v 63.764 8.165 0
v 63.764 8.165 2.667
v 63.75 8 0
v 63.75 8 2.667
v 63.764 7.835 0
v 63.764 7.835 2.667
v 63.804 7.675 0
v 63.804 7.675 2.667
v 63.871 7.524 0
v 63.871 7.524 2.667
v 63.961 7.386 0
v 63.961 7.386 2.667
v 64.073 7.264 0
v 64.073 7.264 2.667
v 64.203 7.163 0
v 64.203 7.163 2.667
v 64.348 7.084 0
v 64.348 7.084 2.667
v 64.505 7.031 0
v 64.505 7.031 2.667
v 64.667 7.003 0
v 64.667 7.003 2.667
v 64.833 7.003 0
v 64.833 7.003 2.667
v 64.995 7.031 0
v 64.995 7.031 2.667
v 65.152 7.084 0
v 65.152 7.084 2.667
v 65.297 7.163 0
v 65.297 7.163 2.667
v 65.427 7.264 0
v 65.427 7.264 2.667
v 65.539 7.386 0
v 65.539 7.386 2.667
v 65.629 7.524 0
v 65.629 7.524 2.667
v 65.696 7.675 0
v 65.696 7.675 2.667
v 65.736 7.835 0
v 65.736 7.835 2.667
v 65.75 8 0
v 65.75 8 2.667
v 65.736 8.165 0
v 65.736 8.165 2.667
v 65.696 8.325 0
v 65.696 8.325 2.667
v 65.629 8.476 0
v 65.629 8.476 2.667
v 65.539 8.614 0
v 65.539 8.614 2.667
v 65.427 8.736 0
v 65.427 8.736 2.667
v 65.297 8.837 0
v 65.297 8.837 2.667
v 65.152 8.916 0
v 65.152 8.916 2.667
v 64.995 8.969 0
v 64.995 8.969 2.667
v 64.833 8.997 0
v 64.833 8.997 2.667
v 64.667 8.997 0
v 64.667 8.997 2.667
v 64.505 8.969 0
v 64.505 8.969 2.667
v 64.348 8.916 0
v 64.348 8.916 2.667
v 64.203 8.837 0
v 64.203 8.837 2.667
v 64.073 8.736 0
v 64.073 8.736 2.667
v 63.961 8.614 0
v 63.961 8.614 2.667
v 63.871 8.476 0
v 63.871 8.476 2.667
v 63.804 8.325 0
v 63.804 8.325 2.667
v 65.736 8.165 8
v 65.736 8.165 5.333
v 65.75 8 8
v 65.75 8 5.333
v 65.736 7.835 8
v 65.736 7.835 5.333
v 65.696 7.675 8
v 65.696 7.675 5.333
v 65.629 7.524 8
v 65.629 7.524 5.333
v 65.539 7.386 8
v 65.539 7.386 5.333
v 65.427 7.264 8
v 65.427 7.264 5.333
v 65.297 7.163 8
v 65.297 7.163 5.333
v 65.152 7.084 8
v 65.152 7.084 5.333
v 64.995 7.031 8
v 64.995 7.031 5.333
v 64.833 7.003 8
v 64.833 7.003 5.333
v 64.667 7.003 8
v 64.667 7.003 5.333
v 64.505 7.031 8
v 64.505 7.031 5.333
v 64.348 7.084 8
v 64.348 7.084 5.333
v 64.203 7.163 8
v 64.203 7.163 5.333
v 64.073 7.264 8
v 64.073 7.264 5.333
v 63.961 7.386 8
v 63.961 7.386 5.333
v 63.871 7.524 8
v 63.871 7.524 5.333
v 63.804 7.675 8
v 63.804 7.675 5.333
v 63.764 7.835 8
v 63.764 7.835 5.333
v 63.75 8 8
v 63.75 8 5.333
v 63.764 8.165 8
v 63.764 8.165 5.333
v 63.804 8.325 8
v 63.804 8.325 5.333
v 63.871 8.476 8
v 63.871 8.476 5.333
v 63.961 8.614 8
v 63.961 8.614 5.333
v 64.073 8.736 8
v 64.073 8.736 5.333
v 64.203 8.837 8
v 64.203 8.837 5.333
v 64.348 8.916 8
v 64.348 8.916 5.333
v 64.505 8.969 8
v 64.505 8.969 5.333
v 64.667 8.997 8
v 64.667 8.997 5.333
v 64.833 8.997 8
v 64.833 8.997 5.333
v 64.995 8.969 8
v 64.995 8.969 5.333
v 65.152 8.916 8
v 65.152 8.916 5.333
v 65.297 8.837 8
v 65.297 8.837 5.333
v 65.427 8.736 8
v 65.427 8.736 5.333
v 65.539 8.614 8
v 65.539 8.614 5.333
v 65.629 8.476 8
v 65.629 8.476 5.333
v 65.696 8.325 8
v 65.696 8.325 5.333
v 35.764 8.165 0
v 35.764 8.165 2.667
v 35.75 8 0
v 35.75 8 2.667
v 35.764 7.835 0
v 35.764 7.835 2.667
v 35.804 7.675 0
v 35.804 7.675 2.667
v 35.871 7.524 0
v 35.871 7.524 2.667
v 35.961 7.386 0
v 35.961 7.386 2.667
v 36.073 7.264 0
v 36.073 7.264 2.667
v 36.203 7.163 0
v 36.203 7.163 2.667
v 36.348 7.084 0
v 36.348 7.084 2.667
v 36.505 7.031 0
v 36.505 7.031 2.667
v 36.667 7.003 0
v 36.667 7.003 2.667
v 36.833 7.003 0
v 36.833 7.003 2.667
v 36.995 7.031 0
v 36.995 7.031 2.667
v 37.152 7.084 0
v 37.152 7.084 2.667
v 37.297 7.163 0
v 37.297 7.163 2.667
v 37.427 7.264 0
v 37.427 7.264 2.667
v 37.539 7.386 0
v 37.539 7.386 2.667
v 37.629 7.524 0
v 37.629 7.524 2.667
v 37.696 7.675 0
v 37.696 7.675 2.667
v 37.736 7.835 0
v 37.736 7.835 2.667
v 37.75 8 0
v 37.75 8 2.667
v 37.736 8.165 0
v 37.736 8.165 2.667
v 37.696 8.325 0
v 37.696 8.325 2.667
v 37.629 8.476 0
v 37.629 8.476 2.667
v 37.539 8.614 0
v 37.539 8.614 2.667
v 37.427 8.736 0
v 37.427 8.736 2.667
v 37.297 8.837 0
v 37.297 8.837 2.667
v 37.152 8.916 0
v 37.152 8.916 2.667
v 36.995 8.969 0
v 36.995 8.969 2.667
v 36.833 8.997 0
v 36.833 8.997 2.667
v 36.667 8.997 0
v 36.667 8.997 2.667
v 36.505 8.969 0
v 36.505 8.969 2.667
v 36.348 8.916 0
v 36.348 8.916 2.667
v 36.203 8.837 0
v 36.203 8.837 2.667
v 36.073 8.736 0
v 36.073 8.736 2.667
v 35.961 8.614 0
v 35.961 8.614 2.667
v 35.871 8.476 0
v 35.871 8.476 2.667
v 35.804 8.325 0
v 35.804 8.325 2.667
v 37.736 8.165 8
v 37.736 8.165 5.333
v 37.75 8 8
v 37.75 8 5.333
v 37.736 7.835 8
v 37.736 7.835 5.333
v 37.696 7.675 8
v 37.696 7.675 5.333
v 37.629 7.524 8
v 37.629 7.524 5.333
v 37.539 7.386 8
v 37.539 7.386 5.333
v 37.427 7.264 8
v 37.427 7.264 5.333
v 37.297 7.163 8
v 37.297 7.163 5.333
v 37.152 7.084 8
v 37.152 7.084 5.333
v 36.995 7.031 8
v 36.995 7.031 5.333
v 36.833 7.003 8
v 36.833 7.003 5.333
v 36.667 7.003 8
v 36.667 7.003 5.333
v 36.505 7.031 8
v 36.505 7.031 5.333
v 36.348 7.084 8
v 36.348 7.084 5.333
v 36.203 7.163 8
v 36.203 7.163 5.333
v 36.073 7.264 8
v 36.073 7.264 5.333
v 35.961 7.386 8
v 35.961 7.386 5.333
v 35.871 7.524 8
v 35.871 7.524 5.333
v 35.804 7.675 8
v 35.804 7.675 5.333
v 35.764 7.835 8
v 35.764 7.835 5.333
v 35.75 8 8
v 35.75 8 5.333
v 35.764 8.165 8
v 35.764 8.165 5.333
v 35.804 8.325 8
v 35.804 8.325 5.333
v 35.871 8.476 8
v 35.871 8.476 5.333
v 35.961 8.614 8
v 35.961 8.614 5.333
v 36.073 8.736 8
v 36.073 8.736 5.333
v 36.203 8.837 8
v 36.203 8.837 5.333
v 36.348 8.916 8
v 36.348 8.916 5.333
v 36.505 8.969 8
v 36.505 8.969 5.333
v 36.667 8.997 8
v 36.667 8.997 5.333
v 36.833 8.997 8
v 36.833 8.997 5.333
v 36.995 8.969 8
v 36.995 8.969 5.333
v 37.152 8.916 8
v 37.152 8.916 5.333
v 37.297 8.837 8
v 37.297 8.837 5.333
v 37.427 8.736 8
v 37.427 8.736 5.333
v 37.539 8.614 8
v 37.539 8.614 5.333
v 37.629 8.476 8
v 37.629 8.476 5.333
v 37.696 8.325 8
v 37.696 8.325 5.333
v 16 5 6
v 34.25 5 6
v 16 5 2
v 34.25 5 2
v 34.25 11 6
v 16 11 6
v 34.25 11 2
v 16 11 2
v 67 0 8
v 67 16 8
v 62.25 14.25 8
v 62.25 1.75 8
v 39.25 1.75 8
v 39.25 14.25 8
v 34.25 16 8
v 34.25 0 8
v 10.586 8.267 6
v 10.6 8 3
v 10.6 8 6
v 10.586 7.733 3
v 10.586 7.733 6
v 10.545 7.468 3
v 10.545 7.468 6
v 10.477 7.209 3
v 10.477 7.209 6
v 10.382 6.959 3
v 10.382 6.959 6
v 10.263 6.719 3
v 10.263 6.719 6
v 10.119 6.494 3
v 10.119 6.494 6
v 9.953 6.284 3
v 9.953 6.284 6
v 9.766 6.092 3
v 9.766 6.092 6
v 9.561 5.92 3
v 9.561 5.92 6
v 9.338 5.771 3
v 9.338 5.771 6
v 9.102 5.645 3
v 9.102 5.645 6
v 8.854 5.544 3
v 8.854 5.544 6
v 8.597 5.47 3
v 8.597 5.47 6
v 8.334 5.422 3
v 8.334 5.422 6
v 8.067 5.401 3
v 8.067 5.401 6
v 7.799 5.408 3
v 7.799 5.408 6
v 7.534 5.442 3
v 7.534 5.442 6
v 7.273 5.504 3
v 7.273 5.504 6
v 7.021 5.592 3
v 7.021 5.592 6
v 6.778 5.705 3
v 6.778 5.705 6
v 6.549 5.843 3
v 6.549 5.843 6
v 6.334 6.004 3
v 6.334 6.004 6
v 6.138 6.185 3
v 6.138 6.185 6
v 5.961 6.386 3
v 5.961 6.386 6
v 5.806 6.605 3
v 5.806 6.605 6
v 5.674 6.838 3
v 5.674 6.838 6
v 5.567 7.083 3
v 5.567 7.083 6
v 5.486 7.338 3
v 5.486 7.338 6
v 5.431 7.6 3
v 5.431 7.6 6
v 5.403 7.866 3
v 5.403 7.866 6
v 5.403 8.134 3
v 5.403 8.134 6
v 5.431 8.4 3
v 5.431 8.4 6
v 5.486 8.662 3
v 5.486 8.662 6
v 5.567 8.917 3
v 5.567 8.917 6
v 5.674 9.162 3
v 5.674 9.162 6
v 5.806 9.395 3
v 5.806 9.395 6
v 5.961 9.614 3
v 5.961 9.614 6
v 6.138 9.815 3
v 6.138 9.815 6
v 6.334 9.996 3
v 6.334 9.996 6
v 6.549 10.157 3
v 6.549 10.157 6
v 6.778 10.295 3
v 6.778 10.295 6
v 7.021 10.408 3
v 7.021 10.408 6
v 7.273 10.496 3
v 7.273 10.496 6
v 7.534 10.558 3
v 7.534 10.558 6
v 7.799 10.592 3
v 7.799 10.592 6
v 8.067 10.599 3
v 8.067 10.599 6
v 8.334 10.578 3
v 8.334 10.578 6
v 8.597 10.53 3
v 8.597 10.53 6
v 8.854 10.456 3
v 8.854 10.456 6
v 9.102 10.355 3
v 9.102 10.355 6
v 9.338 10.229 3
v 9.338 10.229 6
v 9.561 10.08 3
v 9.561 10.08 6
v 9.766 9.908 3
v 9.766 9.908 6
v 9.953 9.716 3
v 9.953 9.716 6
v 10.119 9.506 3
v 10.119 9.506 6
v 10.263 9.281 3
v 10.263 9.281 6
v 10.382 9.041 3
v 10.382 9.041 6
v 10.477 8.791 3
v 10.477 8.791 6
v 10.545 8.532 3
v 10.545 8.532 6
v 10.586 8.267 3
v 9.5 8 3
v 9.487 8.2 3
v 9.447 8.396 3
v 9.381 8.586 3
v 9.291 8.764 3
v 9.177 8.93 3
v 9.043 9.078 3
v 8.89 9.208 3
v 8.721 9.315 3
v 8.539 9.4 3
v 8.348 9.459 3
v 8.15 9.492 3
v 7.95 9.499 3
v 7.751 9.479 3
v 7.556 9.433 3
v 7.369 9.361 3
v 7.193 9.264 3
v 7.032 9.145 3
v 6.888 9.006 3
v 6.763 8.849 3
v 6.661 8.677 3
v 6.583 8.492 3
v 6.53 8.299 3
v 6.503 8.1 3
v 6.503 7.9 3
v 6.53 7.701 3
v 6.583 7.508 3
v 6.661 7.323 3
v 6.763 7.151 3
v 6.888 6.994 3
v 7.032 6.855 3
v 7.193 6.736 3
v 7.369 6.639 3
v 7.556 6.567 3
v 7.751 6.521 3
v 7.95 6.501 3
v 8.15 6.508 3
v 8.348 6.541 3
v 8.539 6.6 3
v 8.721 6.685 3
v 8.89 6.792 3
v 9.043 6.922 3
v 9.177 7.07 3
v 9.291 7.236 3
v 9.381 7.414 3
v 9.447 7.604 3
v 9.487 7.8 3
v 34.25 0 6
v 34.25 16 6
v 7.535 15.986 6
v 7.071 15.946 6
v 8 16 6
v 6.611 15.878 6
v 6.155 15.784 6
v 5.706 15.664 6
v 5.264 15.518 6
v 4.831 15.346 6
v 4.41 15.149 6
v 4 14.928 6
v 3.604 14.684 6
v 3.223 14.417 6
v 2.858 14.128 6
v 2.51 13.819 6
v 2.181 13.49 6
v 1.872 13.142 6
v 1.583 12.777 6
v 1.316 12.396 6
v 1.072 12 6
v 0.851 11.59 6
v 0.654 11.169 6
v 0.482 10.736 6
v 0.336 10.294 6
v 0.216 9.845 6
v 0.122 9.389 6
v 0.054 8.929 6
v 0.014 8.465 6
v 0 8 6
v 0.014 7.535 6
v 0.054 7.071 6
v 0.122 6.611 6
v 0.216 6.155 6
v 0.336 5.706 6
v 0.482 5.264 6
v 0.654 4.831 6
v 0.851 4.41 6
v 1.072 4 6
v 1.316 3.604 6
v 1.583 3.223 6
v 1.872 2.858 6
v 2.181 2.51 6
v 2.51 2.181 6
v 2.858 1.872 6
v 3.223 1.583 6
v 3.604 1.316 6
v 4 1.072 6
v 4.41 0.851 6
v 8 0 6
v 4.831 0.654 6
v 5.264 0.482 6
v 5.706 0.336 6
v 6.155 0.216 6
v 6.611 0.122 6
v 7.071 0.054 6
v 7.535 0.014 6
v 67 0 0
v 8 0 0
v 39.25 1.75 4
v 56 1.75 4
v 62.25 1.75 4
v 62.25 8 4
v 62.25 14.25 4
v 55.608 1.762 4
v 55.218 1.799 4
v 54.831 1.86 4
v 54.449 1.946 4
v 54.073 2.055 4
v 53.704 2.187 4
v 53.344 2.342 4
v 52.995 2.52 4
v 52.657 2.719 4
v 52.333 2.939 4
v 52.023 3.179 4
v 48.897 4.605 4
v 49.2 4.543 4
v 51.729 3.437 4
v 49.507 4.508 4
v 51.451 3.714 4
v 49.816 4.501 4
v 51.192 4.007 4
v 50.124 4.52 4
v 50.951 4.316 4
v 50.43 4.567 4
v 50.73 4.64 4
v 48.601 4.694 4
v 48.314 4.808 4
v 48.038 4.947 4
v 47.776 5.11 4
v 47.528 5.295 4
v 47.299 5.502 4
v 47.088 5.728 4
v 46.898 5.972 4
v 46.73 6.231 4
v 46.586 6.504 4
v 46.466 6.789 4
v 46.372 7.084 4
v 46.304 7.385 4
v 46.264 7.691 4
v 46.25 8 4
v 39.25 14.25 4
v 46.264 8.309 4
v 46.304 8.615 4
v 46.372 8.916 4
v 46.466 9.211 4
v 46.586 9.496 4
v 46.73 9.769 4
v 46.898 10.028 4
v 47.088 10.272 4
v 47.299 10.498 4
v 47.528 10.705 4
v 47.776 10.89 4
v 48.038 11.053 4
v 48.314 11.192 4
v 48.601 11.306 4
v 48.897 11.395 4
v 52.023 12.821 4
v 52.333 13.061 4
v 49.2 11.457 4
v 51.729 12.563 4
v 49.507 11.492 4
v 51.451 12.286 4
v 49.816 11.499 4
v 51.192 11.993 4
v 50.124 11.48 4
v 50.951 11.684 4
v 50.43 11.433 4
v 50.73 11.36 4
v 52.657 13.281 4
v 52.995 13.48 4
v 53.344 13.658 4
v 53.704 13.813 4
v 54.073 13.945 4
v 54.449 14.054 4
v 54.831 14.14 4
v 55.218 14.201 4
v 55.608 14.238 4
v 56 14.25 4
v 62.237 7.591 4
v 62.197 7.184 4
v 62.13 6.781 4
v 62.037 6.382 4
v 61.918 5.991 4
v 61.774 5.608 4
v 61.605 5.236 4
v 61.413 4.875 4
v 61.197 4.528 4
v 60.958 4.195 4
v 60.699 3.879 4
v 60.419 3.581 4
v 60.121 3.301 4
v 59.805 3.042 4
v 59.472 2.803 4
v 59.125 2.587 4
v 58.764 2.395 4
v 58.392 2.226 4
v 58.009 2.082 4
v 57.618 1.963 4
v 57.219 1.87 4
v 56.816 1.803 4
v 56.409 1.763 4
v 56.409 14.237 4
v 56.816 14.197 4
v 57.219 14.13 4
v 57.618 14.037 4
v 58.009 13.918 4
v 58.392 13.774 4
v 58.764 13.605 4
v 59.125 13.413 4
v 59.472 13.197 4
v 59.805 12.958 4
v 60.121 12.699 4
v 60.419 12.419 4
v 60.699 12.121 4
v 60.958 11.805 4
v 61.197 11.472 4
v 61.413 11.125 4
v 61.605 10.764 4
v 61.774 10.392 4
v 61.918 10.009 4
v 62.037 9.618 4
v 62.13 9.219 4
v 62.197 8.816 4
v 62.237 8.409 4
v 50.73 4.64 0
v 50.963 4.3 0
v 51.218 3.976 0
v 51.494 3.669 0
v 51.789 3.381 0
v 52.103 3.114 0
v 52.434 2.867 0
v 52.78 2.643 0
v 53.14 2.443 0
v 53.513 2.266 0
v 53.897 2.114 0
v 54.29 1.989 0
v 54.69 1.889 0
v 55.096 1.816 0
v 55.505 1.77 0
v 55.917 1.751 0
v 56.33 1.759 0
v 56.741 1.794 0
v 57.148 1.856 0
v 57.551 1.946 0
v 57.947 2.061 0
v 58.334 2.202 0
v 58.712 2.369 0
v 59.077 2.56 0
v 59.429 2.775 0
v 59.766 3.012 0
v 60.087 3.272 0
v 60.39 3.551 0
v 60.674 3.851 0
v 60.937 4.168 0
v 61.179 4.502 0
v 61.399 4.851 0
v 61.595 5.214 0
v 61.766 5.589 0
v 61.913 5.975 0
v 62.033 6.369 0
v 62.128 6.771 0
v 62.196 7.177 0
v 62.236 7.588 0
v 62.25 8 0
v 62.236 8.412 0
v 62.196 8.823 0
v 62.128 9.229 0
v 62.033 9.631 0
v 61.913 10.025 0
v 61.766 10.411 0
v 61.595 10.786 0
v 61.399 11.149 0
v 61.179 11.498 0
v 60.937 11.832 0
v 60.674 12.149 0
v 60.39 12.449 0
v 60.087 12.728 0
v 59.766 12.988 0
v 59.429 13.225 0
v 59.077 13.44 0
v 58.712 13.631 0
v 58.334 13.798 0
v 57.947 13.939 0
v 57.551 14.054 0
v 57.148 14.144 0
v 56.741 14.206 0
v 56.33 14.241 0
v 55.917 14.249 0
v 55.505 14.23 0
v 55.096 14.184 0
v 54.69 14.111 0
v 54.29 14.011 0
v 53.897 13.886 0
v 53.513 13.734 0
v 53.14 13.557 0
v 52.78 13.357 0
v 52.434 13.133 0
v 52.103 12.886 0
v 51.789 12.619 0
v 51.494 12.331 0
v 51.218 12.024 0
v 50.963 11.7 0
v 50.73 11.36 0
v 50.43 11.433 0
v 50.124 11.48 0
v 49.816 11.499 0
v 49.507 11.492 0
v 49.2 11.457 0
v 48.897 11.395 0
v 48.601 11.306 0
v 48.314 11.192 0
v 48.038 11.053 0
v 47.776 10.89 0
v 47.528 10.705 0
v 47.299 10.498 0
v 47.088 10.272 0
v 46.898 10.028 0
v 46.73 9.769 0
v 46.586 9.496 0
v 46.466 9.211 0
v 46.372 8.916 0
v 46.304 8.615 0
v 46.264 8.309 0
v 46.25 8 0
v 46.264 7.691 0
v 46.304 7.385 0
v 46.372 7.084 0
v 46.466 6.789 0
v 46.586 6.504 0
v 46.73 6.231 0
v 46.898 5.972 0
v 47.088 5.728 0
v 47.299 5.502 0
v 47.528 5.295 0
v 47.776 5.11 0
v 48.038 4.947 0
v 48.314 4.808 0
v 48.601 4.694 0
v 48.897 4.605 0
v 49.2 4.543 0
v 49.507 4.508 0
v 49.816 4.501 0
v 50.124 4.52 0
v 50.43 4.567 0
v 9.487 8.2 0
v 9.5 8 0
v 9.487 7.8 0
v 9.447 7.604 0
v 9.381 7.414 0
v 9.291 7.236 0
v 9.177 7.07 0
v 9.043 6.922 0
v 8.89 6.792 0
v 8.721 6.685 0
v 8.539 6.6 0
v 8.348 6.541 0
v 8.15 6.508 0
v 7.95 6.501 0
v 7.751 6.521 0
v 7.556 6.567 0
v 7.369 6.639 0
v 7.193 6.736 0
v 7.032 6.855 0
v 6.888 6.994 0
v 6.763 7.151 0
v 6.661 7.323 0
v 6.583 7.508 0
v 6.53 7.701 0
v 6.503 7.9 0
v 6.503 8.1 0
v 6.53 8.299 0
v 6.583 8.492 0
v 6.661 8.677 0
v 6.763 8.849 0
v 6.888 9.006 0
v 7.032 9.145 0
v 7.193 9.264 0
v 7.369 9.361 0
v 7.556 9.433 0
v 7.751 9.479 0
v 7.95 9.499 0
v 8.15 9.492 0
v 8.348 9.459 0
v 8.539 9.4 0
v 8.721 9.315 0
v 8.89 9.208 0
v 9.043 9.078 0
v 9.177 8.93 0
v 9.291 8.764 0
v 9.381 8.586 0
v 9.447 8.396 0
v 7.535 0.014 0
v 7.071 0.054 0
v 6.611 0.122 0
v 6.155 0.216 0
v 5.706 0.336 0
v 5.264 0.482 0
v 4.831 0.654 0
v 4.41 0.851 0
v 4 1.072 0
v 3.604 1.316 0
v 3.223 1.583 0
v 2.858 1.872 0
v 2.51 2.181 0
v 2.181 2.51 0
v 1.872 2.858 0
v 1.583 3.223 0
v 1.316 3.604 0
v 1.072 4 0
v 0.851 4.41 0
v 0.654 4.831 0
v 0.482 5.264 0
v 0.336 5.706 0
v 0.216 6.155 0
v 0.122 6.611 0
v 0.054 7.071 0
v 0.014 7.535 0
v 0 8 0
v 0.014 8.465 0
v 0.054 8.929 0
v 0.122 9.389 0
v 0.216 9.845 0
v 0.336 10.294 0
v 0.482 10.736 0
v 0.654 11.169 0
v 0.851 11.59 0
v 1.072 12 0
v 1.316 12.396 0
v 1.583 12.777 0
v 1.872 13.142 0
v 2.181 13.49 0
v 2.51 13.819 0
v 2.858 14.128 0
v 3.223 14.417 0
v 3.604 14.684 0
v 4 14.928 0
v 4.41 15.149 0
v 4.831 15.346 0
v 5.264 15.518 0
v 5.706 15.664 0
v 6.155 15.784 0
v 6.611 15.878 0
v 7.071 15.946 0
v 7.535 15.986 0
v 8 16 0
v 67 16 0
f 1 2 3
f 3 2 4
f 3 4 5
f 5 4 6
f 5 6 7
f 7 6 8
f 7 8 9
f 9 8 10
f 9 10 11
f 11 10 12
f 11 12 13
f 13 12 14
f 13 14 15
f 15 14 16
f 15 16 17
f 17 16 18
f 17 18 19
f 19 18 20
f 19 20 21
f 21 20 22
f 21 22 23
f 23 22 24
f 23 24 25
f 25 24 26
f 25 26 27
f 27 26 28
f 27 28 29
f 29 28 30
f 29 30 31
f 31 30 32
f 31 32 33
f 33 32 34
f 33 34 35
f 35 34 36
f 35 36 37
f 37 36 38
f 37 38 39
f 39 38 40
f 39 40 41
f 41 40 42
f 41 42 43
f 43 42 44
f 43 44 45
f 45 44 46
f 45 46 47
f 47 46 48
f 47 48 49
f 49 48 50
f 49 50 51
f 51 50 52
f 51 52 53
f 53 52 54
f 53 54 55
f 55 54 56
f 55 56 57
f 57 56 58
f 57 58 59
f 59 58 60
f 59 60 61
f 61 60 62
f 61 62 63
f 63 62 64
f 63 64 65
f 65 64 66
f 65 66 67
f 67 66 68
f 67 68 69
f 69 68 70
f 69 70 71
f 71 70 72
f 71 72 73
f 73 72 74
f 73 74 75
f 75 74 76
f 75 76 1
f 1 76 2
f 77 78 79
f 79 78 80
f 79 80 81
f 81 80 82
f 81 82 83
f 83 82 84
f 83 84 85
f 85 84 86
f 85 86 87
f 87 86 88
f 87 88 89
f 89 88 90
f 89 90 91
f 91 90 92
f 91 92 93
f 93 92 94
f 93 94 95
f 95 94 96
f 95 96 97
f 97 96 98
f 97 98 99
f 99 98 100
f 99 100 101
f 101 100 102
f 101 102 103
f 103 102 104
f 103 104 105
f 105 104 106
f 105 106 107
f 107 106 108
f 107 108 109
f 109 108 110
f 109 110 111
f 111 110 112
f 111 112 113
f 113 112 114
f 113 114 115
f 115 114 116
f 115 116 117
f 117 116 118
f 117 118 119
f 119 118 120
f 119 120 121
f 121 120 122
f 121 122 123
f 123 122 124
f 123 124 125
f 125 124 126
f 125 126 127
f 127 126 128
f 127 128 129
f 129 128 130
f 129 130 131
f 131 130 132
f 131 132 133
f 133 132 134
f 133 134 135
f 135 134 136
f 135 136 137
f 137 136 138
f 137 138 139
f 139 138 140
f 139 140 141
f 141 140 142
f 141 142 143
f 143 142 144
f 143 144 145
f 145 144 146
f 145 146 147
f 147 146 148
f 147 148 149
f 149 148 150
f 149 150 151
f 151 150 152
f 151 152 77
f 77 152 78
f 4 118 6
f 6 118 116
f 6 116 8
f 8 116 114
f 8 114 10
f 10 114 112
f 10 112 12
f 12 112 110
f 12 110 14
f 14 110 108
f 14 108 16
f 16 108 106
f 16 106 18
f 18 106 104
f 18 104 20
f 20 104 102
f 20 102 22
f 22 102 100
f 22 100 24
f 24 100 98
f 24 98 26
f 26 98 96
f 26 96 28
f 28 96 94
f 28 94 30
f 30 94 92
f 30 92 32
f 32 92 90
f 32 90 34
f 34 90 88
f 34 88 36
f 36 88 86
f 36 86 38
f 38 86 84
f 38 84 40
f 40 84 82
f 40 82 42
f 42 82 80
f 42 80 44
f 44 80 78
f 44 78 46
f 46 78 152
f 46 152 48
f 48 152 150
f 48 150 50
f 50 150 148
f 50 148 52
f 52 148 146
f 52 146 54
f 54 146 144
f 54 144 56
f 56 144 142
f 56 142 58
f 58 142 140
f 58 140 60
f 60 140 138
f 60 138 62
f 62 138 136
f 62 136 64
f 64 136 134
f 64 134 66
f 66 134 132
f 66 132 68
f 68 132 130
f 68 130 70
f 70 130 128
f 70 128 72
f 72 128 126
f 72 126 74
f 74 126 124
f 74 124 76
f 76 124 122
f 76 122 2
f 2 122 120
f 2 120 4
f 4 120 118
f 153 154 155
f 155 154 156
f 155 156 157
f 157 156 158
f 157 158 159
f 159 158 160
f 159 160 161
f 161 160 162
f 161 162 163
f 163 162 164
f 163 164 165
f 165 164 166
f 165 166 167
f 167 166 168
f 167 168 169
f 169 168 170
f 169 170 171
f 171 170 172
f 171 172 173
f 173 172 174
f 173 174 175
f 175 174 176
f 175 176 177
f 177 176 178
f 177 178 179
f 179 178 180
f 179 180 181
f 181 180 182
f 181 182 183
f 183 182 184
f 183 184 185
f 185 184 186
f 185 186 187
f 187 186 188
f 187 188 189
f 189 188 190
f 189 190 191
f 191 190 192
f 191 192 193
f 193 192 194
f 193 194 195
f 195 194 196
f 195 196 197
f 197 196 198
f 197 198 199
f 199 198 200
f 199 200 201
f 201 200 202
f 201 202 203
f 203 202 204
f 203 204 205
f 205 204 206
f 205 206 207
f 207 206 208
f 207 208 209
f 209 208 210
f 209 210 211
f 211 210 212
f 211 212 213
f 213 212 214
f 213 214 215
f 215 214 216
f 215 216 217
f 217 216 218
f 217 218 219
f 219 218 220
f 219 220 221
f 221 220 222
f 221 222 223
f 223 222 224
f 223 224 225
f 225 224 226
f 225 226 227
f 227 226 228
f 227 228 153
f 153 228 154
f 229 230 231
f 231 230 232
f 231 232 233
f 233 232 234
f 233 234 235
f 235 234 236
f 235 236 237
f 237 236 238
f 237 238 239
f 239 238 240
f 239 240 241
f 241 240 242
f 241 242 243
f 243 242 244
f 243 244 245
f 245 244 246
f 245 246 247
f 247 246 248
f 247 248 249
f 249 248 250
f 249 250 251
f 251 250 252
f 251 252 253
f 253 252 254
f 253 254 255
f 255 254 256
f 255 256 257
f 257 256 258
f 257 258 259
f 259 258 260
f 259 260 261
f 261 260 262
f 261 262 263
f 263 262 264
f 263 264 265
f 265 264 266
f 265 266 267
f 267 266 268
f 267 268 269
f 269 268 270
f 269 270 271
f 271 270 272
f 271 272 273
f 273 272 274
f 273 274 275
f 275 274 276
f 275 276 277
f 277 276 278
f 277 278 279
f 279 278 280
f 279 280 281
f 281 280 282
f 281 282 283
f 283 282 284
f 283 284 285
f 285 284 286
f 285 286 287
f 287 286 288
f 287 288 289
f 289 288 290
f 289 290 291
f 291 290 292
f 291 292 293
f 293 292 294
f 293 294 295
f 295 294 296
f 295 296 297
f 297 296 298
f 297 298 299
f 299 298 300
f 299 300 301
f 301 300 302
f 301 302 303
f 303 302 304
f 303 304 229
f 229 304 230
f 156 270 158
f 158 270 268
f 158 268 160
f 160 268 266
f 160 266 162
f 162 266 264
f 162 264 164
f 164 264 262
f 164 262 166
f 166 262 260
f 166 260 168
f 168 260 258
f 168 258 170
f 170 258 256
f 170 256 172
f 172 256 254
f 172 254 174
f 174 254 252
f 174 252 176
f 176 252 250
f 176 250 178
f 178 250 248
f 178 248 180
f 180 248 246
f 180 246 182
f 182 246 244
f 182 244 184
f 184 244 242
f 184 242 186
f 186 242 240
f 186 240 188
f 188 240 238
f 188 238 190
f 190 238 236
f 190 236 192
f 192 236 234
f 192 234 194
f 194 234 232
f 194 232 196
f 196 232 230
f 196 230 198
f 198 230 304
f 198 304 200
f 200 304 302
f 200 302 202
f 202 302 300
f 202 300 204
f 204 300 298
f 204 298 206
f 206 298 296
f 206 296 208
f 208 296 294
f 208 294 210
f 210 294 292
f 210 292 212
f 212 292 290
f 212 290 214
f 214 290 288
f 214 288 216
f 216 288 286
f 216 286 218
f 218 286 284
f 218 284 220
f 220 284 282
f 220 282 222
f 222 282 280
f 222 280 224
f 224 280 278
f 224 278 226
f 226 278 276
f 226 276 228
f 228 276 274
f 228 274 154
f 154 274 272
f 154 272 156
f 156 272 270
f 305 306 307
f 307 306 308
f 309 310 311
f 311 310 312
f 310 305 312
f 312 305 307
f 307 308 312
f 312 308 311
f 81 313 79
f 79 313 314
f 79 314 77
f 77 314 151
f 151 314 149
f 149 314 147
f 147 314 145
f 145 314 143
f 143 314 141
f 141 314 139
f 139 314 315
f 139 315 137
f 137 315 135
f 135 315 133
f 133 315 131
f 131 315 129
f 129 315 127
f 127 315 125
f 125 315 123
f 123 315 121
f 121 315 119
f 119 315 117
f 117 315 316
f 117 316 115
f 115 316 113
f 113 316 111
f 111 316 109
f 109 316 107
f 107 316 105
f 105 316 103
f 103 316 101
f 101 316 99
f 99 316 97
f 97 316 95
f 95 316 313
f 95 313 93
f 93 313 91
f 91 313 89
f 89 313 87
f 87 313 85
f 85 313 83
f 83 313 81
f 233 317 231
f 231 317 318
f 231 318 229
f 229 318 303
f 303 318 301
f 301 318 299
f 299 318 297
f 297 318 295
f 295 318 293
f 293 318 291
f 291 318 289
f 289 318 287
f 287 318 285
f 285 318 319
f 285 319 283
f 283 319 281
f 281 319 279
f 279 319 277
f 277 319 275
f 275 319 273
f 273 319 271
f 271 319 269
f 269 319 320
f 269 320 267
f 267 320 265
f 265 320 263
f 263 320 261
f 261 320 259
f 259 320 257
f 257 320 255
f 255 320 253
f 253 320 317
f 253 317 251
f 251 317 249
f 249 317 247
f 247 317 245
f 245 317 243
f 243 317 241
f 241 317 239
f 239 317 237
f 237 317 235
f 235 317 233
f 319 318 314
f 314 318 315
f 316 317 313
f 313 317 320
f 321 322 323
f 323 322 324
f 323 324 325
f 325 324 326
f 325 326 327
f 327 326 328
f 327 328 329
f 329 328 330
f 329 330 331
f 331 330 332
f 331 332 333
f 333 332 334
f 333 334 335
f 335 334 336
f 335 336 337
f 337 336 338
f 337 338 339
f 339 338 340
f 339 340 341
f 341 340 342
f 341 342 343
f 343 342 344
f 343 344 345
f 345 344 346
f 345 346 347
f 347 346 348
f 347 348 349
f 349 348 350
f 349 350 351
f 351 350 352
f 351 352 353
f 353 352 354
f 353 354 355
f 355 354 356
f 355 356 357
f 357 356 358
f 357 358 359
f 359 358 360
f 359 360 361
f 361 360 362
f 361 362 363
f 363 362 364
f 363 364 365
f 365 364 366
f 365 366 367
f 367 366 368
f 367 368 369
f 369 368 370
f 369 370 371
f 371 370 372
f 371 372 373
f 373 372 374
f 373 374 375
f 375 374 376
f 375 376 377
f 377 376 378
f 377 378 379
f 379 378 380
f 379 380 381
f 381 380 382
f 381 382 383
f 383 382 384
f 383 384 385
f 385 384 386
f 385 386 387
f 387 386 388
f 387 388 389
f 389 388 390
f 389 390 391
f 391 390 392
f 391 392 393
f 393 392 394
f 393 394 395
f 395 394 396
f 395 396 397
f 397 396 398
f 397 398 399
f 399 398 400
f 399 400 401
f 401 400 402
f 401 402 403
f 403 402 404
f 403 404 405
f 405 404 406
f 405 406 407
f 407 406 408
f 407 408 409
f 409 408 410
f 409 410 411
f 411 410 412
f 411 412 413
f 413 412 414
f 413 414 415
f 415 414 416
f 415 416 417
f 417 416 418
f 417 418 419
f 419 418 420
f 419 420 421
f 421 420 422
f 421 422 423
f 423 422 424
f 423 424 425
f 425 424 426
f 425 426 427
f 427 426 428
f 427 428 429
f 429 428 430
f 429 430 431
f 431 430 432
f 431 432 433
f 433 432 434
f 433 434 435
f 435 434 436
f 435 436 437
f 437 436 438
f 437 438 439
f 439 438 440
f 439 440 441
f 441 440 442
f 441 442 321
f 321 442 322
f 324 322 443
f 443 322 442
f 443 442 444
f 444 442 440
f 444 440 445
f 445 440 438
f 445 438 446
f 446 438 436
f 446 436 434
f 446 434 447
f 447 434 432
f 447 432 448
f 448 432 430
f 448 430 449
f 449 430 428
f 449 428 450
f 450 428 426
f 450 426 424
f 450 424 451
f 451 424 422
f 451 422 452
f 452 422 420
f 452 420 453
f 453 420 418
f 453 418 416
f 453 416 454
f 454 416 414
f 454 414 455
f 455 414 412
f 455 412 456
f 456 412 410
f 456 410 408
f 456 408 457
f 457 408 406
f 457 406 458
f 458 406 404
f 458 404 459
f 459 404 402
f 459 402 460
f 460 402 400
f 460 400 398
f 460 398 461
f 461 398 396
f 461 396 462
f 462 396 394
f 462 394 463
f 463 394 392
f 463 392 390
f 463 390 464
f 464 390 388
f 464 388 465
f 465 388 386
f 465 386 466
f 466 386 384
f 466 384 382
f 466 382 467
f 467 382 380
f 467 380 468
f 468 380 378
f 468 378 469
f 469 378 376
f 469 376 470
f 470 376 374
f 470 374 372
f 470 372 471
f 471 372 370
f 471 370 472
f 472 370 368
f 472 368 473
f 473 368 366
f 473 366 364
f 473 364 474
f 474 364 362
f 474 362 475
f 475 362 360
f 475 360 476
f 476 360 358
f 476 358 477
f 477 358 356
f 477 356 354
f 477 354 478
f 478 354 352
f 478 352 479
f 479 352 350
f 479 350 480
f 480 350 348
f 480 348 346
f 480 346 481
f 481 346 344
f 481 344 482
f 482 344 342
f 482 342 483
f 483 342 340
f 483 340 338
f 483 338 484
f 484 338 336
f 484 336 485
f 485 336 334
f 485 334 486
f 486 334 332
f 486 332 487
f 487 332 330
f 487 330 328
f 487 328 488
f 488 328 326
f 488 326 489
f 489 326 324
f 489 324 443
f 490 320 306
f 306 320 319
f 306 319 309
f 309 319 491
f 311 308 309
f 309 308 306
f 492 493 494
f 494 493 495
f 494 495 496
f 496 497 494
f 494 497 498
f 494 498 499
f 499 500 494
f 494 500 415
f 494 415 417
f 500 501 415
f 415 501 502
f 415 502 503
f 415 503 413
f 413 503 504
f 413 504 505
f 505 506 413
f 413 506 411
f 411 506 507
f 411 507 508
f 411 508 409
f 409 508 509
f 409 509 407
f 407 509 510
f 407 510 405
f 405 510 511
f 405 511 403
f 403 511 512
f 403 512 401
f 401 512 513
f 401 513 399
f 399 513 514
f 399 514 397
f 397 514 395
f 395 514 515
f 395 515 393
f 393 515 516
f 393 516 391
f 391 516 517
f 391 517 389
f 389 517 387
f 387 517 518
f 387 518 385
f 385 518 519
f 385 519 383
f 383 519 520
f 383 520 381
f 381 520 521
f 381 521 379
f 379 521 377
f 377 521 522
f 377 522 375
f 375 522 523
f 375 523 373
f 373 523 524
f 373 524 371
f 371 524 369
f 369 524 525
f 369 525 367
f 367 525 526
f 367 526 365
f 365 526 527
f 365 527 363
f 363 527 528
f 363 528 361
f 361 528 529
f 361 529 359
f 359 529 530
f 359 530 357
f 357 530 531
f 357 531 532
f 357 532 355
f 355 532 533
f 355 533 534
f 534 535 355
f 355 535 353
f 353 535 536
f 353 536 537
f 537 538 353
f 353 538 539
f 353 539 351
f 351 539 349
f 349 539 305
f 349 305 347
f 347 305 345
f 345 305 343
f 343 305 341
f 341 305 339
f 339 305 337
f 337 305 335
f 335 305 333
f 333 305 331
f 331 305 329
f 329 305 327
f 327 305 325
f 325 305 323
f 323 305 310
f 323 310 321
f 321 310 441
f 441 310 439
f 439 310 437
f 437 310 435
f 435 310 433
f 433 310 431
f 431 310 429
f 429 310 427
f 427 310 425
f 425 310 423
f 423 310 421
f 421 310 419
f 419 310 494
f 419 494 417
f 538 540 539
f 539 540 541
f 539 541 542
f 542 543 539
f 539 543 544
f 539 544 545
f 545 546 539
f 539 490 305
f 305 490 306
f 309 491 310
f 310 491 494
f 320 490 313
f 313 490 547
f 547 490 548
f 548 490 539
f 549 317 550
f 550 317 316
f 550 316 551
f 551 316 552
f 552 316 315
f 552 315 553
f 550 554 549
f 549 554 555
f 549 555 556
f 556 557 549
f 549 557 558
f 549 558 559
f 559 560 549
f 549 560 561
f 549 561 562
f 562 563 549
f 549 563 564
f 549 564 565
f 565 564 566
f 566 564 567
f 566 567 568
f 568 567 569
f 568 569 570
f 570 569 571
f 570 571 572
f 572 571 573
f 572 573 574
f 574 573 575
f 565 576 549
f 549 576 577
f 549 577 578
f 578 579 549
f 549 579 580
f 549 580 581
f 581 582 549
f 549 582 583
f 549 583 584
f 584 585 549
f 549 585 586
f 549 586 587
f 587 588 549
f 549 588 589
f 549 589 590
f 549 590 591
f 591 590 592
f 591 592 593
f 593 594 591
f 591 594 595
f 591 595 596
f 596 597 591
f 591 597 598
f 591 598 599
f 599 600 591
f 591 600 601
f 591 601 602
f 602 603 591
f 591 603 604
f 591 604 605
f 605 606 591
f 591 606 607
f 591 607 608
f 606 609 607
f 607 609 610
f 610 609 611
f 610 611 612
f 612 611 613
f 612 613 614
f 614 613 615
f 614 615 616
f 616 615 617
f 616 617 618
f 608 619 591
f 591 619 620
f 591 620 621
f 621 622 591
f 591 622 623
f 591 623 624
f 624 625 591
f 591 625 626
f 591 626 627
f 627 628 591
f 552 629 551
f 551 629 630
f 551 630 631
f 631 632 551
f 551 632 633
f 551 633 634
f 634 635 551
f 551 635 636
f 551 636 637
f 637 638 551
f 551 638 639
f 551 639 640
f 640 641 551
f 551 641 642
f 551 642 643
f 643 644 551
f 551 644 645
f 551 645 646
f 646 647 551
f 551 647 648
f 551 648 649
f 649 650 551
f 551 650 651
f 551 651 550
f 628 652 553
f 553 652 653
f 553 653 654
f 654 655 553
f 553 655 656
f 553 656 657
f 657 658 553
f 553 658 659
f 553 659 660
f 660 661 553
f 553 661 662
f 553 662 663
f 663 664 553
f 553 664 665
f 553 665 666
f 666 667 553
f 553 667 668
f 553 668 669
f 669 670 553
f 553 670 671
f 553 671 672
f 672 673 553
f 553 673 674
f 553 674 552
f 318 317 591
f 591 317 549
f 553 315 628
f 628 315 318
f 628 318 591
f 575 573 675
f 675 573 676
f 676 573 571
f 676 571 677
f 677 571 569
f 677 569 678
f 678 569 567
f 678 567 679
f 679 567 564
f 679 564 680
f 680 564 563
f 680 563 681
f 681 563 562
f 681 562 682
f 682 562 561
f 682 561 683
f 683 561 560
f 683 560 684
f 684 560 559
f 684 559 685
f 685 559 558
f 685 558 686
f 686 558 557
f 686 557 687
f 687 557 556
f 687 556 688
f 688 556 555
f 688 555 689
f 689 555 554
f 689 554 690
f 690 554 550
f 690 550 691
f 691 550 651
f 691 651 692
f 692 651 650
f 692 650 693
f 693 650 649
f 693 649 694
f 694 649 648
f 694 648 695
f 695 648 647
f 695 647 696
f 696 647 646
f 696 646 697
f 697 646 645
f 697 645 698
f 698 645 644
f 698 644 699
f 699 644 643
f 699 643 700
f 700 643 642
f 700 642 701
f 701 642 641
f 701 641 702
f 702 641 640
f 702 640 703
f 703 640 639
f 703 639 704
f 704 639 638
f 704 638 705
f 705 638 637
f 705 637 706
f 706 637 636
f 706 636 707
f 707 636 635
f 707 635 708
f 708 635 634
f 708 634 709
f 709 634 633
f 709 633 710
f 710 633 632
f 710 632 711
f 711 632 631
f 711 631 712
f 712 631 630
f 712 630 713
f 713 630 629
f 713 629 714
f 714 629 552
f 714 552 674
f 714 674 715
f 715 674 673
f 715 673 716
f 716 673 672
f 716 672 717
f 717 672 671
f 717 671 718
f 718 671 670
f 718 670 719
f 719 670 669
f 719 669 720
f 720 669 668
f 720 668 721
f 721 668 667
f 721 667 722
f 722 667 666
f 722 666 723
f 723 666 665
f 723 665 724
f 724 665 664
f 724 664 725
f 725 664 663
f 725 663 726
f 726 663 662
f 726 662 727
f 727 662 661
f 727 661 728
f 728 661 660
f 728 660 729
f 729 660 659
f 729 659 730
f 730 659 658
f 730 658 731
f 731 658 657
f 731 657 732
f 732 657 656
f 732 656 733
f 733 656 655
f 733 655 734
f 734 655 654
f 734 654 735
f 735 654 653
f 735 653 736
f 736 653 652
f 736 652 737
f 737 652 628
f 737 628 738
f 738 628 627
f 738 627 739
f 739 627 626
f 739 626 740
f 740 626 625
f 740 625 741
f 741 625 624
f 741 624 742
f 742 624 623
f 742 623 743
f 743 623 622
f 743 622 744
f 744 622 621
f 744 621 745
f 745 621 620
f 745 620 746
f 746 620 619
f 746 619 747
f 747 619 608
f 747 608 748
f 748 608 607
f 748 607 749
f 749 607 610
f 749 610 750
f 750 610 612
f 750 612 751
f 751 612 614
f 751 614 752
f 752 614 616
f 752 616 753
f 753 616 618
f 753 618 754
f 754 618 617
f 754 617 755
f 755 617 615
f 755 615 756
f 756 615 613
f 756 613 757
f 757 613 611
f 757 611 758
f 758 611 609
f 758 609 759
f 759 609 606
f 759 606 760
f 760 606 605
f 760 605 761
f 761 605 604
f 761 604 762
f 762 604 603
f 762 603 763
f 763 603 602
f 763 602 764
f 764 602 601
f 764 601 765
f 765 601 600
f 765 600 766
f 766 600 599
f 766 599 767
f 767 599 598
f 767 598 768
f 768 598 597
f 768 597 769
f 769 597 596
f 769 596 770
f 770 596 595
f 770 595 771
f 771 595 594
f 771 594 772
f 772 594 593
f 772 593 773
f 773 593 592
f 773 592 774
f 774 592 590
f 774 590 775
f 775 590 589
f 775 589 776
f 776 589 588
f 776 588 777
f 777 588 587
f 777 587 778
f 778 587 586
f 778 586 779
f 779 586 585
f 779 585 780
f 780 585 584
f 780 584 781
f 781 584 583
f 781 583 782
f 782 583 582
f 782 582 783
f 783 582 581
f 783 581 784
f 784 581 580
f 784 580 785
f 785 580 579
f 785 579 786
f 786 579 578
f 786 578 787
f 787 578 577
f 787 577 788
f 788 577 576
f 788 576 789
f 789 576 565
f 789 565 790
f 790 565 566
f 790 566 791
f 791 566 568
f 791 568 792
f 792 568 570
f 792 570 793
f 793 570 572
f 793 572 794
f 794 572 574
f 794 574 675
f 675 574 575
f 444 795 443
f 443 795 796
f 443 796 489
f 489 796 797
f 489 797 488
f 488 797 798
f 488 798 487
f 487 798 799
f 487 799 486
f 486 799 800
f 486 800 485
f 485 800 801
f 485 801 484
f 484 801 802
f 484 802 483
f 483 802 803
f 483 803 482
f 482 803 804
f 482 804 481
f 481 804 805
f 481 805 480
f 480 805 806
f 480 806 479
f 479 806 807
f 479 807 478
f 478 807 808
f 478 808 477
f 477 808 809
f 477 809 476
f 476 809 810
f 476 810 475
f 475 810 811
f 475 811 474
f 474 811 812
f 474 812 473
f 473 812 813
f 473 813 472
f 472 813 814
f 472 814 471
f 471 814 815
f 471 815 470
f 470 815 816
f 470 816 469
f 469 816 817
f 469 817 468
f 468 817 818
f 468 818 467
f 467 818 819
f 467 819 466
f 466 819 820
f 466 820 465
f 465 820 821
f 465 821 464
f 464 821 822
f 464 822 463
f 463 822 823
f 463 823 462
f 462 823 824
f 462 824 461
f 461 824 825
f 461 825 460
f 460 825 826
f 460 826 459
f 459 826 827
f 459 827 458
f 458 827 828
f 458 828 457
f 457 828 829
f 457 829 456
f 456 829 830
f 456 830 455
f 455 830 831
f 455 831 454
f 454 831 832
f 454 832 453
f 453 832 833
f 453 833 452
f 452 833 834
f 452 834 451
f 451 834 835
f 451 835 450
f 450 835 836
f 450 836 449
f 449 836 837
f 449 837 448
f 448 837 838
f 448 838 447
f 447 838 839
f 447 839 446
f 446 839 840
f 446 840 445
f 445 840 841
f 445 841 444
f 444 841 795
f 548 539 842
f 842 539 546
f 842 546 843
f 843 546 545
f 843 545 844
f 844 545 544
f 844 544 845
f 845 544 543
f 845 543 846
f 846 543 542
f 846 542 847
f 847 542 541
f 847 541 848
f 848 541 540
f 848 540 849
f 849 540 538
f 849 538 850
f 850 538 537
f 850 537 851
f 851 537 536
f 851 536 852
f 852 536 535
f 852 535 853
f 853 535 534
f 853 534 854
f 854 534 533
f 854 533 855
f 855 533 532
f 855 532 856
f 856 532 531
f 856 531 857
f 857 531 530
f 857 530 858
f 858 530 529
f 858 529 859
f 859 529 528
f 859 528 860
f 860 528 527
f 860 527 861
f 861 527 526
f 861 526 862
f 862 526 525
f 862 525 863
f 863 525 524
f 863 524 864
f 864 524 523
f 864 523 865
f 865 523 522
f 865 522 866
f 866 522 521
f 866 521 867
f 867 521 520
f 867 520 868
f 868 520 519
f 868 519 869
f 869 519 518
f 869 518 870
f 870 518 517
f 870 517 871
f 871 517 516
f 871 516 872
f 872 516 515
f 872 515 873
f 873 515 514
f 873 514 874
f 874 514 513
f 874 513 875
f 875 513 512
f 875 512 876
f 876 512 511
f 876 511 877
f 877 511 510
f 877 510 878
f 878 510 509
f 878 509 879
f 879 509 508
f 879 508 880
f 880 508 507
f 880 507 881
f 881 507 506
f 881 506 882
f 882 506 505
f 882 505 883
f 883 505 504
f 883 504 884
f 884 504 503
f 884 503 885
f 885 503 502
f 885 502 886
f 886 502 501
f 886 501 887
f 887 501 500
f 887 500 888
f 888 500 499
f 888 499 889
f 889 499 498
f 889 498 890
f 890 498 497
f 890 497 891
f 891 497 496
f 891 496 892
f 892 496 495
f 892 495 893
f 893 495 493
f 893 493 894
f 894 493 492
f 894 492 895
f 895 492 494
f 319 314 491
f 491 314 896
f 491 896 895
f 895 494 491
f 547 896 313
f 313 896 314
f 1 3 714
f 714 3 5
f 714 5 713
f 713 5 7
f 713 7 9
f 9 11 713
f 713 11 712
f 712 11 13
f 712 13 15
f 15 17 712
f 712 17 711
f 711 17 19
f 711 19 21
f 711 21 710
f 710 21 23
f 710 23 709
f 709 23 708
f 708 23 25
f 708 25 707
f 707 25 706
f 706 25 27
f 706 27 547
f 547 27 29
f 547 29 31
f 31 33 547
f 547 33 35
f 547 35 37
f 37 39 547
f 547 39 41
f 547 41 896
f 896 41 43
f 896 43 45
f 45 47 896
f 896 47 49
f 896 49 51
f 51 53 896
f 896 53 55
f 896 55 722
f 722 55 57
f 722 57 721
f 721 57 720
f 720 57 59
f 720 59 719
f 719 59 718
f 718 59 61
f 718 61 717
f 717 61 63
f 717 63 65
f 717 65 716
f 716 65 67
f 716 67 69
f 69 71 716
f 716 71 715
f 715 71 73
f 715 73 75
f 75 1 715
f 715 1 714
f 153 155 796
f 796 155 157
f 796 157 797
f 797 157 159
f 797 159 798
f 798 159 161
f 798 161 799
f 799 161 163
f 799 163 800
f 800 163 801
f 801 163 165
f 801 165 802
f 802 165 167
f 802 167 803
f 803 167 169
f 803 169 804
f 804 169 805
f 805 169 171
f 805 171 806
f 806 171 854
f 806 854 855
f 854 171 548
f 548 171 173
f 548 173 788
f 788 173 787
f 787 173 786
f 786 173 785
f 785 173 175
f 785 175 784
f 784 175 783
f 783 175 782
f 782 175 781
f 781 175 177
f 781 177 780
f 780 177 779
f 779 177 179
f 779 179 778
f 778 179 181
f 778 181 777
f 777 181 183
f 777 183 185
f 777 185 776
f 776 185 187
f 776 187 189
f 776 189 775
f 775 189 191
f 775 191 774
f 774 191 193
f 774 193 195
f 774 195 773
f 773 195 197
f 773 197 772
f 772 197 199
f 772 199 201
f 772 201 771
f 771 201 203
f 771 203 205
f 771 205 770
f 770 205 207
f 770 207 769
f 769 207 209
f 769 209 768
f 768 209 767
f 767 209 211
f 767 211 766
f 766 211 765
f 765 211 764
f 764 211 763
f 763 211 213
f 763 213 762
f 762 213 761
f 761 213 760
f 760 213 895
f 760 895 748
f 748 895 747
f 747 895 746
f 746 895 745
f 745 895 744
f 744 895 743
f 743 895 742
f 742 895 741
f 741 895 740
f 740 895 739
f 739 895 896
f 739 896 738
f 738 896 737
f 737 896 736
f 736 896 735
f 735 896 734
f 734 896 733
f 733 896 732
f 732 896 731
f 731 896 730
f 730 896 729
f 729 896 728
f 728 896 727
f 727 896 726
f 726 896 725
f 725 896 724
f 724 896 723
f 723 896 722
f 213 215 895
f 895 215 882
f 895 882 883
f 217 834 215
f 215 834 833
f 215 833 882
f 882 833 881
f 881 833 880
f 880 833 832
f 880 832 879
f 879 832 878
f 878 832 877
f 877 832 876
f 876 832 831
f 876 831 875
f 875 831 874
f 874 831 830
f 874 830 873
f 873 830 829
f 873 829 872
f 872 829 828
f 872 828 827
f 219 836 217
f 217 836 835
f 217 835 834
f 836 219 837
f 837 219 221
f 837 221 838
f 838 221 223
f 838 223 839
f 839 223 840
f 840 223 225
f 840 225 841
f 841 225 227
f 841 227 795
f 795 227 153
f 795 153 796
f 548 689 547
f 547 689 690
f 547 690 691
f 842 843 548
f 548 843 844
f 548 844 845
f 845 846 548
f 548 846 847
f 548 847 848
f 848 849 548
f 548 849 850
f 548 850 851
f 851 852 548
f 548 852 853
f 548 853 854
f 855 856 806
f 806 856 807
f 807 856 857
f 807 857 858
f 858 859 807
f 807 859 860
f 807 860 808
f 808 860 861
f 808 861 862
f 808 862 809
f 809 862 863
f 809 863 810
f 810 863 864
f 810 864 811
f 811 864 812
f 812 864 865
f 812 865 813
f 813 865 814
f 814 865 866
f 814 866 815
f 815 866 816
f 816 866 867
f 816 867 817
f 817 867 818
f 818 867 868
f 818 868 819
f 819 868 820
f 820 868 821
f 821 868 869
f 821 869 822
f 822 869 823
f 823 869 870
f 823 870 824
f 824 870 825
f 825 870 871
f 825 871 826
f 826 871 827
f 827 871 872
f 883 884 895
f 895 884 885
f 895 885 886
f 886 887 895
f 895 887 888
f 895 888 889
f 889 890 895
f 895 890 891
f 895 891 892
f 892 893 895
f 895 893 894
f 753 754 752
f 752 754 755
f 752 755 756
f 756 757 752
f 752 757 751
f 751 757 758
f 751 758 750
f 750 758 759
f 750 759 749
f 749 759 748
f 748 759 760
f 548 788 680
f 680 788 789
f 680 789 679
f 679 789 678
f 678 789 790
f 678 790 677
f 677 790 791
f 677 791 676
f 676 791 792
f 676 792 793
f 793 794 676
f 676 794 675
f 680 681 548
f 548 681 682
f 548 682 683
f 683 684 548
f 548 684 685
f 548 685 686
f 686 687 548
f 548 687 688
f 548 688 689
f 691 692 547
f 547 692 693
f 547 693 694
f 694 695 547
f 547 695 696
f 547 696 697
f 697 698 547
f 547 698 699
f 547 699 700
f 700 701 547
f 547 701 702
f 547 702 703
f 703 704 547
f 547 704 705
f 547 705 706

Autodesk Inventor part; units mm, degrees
ref_plane "YZ Plane" through (0, 0, 0) normal (1, 0, 0) x (0, 1, 0)
ref_plane "XZ Plane" through (0, 0, 0) normal (0, 1, 0) x (-1, 0, 0)
ref_plane "XY Plane" through (0, 0, 0) normal (0, 0, 1) x (1, 0, 0)
sketch "Sketch1" plane through (0, 0, 0) normal (0, 0, 1) x (1, 0, 0)
  line L0 (8, 0) -> (67, 0)
  line L1 (67, 0) -> (67, 16)
  line L2 (67, 16) -> (8, 16)
  circle A0 centre (8, 8) radius 1.5
  circle A1 centre (56, 8) radius 6.25
  circle A2 centre (49.75, 8) radius 3.5
  arc A3 (8, 16) -> (8, 0) centre (8, 8) ccw
  point P0 (0, 0)
  point P1 (0, 8)
  point P2 (50.73, 4.64)
  point P3 (50.73, 11.36)
  dimension "d8" = 12.5
  dimension "d0" = 16
  dimension "d2" = 3
  dimension "d3" = 7
  dimension "d4" = 48
  dimension "d6" = 11
  dimension "d7" = 8
  dimension "d9" = 8
  dimension "d10" = 8
extrude "Extrusion1" add sketch "Sketch1" along normal blind 8
sketch "Sketch2" plane through (0, 0, 8) normal (0, 0, 1) x (1, 0, 0)
  line L0 (62.25, 14.25) -> (39.25, 14.25)
  line L1 (39.25, 14.25) -> (39.25, 1.75)
  line L2 (39.25, 1.75) -> (62.25, 1.75)
  line L3 (62.25, 1.75) -> (62.25, 14.25)
  line L4 (67, 16) -> (8, 16) projected
  line L5 (67, 0) -> (67, 16) projected
  circle A0 centre (36.75, 8) radius 1
  circle A1 centre (64.75, 8) radius 1
  line L6 (0, 0) -> (67, 0) projected
  arc A2 (50.73, 4.64) -> (50.73, 11.36) centre (56, 8) ccw projected
  line L7 (0, 16) -> (0, 0) projected
  line L8 (0, 0) -> (34.25, 0)
  line L9 (34.25, 0) -> (34.25, 16)
  line L10 (34.25, 16) -> (0, 16)
  line L11 (0, 16) -> (0, 0)
  circle A3 centre (8, 8) radius 1.5 projected
  circle A4 centre (8, 8) radius 2.6
  line L12 (16, 5) -> (34.25, 5)
  line L13 (34.25, 5) -> (34.25, 11)
  line L14 (34.25, 11) -> (16, 11)
  line L15 (16, 11) -> (16, 5)
  dimension "d13" = 23
  dimension "d14" = 12.5
  dimension "d15" = 1.75
  dimension "d19" = 2
  dimension "d20" = 2.5
  dimension "d21" = 2.5
  dimension "d26" = 8
  dimension "d27" = 8
  dimension "d42" = 5
  dimension "d43" = 5.2
  dimension "d44" = 5
  dimension "d45" = 5
  dimension "d53" = 8
extrude "Extrusion2" cut sketch "Sketch2" against normal blind 4 contours L3 A2 L0 | A2 L2 L1 L0 | L3 L2 A2
extrude "Extrusion6" cut sketch "Sketch2" against normal blind 2 contours L9 L14 L15 L12 L6 L7 L10 L4
extrude "Extrusion7" cut sketch "Sketch2" against normal blind 5 contours A4
extrude "Extrusion8" cut sketch "Sketch2" against normal blind 6 contours L9 L12 L15 L14
extrude "Extrusion9" cut sketch "Sketch2" against normal through all contours A0 | A1
properties part number "leg"
